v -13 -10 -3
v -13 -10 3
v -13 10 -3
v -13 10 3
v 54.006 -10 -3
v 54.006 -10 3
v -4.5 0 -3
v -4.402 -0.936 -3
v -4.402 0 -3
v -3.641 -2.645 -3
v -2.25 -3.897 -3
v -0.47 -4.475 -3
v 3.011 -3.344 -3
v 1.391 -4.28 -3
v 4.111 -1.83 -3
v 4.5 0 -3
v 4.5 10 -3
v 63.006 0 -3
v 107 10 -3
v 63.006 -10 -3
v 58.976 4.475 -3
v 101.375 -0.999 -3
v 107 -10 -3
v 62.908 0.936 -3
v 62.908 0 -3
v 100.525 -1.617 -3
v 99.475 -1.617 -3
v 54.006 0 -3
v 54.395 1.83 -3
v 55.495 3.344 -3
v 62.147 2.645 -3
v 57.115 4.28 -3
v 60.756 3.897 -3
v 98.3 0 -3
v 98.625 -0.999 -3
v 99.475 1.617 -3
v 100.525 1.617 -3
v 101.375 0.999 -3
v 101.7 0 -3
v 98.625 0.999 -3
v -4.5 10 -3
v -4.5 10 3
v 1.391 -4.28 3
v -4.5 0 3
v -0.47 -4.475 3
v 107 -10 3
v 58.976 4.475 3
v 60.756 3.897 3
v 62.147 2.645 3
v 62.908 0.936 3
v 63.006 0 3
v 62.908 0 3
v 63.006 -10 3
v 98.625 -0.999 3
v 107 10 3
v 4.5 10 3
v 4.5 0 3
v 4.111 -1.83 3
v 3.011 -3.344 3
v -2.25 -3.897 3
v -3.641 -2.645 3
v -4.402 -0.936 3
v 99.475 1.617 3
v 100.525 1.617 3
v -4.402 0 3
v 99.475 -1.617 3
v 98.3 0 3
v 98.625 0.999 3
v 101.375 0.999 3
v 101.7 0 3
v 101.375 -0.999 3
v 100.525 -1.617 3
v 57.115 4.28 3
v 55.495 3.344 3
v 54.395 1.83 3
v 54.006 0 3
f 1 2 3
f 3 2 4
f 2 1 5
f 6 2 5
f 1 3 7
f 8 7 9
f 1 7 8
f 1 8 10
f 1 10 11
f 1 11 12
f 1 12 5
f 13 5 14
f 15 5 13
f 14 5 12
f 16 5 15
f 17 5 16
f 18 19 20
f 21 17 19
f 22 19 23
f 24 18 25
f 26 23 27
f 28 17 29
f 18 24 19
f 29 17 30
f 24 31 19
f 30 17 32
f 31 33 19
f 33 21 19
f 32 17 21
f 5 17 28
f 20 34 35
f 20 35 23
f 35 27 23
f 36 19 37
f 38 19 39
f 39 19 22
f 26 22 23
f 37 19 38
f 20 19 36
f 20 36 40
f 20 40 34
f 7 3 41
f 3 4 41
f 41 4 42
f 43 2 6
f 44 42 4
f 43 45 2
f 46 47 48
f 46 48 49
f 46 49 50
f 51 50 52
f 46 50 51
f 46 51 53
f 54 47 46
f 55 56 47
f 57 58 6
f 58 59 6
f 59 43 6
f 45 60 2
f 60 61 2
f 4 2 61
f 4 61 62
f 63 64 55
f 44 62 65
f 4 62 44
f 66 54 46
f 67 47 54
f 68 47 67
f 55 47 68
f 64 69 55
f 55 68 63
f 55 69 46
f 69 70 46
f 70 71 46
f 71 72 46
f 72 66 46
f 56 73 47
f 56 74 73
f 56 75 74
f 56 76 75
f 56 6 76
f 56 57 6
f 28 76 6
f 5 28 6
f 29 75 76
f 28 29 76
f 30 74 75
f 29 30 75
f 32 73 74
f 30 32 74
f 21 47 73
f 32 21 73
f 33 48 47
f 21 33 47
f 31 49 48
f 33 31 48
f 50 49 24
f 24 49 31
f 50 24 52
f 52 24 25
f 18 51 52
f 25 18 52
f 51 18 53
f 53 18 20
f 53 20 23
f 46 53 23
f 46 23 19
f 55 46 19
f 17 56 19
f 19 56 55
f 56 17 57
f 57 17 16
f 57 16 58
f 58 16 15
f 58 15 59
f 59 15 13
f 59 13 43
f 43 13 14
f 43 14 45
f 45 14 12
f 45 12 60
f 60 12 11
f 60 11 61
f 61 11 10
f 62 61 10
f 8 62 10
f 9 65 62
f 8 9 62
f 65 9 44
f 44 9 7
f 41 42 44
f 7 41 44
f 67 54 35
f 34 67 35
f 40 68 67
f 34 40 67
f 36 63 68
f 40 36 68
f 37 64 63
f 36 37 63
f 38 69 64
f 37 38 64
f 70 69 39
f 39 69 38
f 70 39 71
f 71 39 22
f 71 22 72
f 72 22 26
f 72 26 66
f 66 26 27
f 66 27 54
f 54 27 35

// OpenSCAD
// file: functions.scad
// PRUSA Mendel  
// Functions used in many files
// GNU GPL v3
// Josef Průša
// josefprusa@me.com
// prusadjs.cz
// http://www.reprap.org/wiki/Prusa_Mendel
// http://github.com/prusajr/PrusaMendel


module nut(d,h,horizontal=true){
cornerdiameter =  (d / 2) / cos (180 / 6);
cylinder(h = h, r = cornerdiameter, $fn = 6);
if(horizontal){
for(i = [1:6]){
	rotate([0,0,60*i]) translate([-cornerdiameter-0.2,0,0]) rotate([0,0,-45]) cube(size = [2,2,h]);
}}
}

// Based on nophead research
module polyhole(d,h) {
    n = max(round(2 * d),3);
    rotate([0,0,180])
        cylinder(h = h, r = (d / 2) / cos (180 / n), $fn = n);
}




module roundcorner(diameter){
	difference(){
		cube(size = [diameter,diameter,99], center = false);
		translate(v = [diameter, diameter, 0]) cylinder(h = 100, r=diameter, center=false,$fn = max(3*diameter,20));
	}
}
// file: configuration.scad
// PRUSA Mendel  
// Configuration file
// GNU GPL v2
// Josef Pra
// josefprusa@me.com
// prusadjs.cz
// http://www.reprap.org/wiki/Prusa_Mendel
// http://github.com/prusajr/PrusaMendel


// PLEASE SELECT ONE OF THE CONFIGURATIONS BELOW
// BY UN-COMMENTING IT


variant=0; //0 for metric
//variant=1; //1 for SAE
if(variant==0){
echo("variant: metric");
}else if(variant==1){
echo("variant: sae");
} else{
echo("WARNING: INVALID CONFIGURATION");
}




vars=[
//[m8_dia,m8_nut, m4_dia, m4_nut, m3_dia, m3_nut, bush_dia, mot_shaft, bush_rod, bush_outerdia, bush_length, m5_dia, m5_nut]
[9, 16.4, 5,9, 3.4, 6.5, 11, 5.3, 8, 16, 11, 5.6, 10],//metric - M3 nut was 7; M3 was 4.4
[9,15.7,5.5,10.6,5.5,10.6,11.5,5.3,7.9375,16,11,5.6, 10]//SAE
];


//BUSHING TYPE Can generate three versions
// 1 - regular old ones
// 2 - helical ones
// 3 - holders for brass or any other bought bushings
bushing_type = 2;


//Round corner diameter
round_corner_diameter = 8;


//Thin wall size
layer_height = 0.4;
perimeter_width_over_thicknes = 1.6;
infill_widht_over_thickness = 1.55;
thin_wall = 2*(perimeter_width_over_thicknes*layer_height+infill_widht_over_thickness*layer_height);
if(thin_wall<2){
	echo("Check thin wall size, its below 2mm!");
}
echo(thin_wall);


//DO NOT TOUCH THIS SECTION!
m8_diameter = vars[variant][0];
m8_nut_diameter = vars[variant][1];
m4_diameter = vars[variant][2];
m4_nut_diameter = vars[variant][3];
m3_diameter = vars[variant][4];
m3_nut_diameter = vars[variant][5];
bushing_diameter = vars[variant][6];
motor_shaft=vars[variant][7];
bushing_rodsize = vars[variant][8];
bushing_outerDiameter = vars[variant][9];
bushing_lenght = vars[variant][10];
m5_diameter = vars[variant][11];
m5_nut_diameter = vars[variant][12];



// MINI-HUXLEY VERSION (TODO, just place holder)
// include <configuration-huxley.scad>


// MEGA VERSION (TODO, just place holder)
// include <configuration-mega.scad>

// Gap between the X rods

x_rod_centres=70;
y_rod_centres=183;
belt_width=6;
belt_clamp_centres=18;

vertex_x_rod_1=[11.013,59.912];
vertex_x_rod_2=[40.274,9.249,0];
vertex_x_rod_gap=sqrt((vertex_x_rod_1.x-vertex_x_rod_2.x)*(vertex_x_rod_1.x-vertex_x_rod_2.x) +(vertex_x_rod_1.y-vertex_x_rod_2.y)*(vertex_x_rod_1.y-vertex_x_rod_2.y) );

// Some basic functions, probably should be somewhere else
module roundcorner(diameter){
	difference(){
		cube(size = [diameter,diameter,99], center = false);
		translate(v = [diameter, diameter, 0]) cylinder(h = 100, r=diameter, center=true);
	}
}

include <functions.scad>
// main file
/*

  Mendel mount for RepRapPro Huxley extruder driver

  Adrian 9 March 2012
 Licence: GPL
*/

include <configuration.scad>

module slot()
{
	union()
	{
		cylinder(h=18,r=(m8_diameter/2),center=true); 
		translate([0,10,0])
			cube([m8_diameter, 20, 18],center=true);
	}
}

difference()
{
	translate([47,0,0])
		cube([120, 20, 6],center=true);
	
	translate([100,0,0])
		cylinder(h=18,r=(m3_diameter/2),center=true,$fn=10); 
	
	slot();

	translate([vertex_x_rod_gap,0,0]) 
		rotate([0,0,180])
		slot();
}
